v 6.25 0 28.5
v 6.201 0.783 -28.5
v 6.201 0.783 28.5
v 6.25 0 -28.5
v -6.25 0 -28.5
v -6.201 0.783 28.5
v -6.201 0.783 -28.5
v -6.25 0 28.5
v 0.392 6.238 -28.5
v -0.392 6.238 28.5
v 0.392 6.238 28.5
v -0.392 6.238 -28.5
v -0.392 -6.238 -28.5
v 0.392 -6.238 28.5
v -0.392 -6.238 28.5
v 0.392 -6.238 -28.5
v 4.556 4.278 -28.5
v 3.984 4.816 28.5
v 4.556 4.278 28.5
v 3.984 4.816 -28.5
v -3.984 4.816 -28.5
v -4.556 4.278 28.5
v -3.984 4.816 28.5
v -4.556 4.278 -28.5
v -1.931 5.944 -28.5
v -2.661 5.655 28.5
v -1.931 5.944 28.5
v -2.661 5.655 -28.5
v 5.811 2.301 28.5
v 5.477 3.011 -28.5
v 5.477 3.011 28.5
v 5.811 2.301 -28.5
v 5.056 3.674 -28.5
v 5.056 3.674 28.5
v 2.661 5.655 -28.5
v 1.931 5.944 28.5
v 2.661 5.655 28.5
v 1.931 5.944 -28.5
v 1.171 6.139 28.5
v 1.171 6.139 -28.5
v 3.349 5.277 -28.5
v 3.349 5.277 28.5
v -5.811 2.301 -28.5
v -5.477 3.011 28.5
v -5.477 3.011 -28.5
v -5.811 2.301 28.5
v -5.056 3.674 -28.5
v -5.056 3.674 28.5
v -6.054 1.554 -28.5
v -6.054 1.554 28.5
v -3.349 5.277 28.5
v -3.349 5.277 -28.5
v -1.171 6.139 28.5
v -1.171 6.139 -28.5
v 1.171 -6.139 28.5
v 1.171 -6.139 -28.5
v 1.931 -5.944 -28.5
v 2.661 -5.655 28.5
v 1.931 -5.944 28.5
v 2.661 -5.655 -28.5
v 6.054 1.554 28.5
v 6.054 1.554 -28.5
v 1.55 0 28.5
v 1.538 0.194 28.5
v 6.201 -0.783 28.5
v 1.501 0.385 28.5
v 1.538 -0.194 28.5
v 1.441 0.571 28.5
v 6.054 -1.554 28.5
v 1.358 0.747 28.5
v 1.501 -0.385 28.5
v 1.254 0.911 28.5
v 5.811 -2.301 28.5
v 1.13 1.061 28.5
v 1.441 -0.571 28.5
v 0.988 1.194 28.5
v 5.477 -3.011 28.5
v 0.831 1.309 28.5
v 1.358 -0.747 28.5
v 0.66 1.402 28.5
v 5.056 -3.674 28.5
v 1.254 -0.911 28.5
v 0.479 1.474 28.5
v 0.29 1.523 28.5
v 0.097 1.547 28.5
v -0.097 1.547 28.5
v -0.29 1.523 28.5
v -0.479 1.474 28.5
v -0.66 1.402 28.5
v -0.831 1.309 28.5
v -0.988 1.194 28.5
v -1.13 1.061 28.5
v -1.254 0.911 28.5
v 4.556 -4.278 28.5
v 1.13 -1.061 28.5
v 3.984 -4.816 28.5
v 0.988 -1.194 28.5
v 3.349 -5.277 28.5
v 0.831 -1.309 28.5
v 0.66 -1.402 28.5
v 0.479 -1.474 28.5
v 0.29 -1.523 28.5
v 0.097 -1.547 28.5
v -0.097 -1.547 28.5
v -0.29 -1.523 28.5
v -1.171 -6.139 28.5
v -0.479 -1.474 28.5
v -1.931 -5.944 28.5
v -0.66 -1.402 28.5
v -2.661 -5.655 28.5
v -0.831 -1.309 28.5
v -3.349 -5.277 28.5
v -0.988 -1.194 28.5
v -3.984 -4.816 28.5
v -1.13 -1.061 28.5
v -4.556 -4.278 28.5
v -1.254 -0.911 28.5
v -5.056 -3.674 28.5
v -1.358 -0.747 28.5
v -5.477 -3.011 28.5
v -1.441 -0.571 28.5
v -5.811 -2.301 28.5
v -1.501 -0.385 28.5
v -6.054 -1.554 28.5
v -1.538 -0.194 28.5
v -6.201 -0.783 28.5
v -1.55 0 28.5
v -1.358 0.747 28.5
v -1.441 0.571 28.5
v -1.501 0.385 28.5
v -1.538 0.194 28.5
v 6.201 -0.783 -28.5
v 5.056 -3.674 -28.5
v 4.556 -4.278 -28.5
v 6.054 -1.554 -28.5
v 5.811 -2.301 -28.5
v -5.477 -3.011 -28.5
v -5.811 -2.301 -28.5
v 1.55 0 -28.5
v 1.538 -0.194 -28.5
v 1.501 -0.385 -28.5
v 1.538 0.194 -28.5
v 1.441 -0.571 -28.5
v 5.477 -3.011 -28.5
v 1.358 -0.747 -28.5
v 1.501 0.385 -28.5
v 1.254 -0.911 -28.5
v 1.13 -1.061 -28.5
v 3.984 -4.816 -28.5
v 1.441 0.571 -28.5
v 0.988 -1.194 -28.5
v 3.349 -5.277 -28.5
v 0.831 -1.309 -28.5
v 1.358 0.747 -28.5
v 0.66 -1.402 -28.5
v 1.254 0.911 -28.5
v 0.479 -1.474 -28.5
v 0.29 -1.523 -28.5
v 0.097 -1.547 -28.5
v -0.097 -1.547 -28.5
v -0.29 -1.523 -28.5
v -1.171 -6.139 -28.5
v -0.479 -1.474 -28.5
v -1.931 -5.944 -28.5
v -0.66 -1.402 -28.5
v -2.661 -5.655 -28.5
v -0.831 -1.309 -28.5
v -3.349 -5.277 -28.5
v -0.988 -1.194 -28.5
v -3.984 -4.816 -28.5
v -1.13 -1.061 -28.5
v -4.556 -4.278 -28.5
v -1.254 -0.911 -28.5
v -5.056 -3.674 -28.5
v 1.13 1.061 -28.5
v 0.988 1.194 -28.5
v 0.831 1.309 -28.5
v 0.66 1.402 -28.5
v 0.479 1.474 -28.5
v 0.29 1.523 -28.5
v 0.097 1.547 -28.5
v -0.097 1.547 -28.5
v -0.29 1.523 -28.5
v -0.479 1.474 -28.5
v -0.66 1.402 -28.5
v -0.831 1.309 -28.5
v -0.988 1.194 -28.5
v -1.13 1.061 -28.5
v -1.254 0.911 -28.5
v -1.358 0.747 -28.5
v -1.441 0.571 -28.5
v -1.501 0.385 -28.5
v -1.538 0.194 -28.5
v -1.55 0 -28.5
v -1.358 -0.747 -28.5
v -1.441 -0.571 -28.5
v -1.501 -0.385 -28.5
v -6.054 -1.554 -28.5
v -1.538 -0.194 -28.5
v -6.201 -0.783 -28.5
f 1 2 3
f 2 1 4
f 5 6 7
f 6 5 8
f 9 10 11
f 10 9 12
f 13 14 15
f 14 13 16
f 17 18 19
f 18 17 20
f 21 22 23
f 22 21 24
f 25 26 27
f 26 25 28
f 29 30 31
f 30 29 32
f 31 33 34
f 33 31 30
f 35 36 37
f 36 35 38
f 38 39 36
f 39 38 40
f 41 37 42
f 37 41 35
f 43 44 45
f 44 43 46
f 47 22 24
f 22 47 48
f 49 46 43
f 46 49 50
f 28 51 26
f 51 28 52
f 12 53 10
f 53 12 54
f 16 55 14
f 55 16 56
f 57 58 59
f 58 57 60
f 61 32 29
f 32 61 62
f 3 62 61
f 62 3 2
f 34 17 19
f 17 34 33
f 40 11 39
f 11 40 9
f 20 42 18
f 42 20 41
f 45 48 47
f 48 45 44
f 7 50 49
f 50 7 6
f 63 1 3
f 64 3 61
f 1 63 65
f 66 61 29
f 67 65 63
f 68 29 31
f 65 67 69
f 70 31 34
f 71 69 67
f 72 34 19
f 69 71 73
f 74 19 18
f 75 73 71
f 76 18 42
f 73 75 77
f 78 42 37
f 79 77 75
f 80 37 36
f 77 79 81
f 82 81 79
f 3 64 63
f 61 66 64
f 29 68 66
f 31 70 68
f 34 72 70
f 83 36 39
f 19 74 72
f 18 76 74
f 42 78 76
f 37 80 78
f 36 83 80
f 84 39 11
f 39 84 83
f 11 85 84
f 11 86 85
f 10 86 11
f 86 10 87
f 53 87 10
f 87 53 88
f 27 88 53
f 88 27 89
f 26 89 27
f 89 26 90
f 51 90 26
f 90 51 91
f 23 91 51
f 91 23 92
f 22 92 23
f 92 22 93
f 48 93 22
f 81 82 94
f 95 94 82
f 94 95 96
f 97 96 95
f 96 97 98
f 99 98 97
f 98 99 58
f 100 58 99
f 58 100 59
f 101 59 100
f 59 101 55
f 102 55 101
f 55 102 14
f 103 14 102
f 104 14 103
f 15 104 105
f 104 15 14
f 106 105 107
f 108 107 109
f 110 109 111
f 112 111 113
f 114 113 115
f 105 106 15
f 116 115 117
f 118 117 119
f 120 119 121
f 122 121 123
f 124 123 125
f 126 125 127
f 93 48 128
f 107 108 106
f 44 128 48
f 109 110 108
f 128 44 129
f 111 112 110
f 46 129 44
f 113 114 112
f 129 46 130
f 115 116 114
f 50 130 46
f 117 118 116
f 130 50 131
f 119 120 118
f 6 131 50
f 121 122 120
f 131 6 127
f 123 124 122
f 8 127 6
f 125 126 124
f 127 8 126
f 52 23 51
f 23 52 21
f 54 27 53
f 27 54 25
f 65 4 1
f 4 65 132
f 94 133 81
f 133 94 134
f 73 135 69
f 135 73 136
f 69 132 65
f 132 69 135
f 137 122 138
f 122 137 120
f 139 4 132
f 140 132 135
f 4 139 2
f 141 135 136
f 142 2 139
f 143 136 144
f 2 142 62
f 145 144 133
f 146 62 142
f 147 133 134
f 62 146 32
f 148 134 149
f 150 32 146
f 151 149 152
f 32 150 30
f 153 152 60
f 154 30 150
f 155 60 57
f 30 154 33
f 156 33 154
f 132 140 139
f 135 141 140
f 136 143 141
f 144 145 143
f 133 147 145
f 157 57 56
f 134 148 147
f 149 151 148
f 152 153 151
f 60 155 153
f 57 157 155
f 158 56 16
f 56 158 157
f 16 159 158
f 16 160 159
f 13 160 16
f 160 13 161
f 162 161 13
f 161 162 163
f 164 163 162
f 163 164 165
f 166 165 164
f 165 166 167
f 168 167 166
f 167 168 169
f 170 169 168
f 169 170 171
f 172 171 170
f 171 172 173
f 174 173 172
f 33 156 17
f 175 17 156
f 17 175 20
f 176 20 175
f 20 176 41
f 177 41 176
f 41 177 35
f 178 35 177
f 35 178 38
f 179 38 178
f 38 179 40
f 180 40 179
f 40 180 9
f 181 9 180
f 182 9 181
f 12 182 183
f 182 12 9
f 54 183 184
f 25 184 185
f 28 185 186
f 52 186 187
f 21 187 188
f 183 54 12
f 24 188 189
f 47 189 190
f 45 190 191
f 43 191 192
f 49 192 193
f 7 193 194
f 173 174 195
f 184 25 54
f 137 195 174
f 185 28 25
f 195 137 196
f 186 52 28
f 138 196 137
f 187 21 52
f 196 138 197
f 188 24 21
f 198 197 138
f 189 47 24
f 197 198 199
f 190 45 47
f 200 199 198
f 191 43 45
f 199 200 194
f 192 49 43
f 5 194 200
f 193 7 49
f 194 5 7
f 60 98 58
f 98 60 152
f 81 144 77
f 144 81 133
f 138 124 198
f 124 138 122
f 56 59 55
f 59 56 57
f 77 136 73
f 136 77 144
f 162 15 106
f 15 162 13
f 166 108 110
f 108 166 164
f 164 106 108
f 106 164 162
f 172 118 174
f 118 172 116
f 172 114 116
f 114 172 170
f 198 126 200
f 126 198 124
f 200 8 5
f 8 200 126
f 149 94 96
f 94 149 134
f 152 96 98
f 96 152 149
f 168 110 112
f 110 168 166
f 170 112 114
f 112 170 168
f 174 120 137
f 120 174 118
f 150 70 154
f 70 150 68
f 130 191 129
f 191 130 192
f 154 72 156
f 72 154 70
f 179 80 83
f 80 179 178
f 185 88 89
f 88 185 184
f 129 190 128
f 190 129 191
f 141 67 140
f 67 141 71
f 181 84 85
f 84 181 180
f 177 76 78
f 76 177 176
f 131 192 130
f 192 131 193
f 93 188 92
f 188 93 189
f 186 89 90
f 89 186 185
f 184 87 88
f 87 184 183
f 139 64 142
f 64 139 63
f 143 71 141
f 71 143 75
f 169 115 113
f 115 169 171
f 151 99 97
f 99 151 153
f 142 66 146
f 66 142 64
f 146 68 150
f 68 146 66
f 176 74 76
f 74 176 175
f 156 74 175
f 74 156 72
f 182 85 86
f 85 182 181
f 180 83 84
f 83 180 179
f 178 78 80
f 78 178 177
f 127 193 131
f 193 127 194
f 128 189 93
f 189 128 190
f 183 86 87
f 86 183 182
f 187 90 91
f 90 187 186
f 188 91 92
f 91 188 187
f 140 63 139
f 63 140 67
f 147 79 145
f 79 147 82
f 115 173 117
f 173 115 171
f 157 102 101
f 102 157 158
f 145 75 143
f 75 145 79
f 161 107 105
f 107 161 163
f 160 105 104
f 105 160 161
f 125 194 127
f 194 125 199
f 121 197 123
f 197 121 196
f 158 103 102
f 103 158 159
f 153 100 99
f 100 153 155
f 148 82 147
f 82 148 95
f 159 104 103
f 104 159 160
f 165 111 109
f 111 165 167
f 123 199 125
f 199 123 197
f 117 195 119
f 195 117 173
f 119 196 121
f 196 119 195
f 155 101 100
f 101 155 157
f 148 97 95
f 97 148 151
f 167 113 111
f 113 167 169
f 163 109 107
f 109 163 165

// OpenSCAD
$fn = 50;


difference() {
	union() {
		translate(v = [0, 0, -28.5000000000]) {
			cylinder(h = 57, r = 6.2500000000);
		}
	}
	union() {
		translate(v = [0, 0, -100.0000000000]) {
			cylinder(h = 200, r = 1.5500000000);
		}
	}
}
